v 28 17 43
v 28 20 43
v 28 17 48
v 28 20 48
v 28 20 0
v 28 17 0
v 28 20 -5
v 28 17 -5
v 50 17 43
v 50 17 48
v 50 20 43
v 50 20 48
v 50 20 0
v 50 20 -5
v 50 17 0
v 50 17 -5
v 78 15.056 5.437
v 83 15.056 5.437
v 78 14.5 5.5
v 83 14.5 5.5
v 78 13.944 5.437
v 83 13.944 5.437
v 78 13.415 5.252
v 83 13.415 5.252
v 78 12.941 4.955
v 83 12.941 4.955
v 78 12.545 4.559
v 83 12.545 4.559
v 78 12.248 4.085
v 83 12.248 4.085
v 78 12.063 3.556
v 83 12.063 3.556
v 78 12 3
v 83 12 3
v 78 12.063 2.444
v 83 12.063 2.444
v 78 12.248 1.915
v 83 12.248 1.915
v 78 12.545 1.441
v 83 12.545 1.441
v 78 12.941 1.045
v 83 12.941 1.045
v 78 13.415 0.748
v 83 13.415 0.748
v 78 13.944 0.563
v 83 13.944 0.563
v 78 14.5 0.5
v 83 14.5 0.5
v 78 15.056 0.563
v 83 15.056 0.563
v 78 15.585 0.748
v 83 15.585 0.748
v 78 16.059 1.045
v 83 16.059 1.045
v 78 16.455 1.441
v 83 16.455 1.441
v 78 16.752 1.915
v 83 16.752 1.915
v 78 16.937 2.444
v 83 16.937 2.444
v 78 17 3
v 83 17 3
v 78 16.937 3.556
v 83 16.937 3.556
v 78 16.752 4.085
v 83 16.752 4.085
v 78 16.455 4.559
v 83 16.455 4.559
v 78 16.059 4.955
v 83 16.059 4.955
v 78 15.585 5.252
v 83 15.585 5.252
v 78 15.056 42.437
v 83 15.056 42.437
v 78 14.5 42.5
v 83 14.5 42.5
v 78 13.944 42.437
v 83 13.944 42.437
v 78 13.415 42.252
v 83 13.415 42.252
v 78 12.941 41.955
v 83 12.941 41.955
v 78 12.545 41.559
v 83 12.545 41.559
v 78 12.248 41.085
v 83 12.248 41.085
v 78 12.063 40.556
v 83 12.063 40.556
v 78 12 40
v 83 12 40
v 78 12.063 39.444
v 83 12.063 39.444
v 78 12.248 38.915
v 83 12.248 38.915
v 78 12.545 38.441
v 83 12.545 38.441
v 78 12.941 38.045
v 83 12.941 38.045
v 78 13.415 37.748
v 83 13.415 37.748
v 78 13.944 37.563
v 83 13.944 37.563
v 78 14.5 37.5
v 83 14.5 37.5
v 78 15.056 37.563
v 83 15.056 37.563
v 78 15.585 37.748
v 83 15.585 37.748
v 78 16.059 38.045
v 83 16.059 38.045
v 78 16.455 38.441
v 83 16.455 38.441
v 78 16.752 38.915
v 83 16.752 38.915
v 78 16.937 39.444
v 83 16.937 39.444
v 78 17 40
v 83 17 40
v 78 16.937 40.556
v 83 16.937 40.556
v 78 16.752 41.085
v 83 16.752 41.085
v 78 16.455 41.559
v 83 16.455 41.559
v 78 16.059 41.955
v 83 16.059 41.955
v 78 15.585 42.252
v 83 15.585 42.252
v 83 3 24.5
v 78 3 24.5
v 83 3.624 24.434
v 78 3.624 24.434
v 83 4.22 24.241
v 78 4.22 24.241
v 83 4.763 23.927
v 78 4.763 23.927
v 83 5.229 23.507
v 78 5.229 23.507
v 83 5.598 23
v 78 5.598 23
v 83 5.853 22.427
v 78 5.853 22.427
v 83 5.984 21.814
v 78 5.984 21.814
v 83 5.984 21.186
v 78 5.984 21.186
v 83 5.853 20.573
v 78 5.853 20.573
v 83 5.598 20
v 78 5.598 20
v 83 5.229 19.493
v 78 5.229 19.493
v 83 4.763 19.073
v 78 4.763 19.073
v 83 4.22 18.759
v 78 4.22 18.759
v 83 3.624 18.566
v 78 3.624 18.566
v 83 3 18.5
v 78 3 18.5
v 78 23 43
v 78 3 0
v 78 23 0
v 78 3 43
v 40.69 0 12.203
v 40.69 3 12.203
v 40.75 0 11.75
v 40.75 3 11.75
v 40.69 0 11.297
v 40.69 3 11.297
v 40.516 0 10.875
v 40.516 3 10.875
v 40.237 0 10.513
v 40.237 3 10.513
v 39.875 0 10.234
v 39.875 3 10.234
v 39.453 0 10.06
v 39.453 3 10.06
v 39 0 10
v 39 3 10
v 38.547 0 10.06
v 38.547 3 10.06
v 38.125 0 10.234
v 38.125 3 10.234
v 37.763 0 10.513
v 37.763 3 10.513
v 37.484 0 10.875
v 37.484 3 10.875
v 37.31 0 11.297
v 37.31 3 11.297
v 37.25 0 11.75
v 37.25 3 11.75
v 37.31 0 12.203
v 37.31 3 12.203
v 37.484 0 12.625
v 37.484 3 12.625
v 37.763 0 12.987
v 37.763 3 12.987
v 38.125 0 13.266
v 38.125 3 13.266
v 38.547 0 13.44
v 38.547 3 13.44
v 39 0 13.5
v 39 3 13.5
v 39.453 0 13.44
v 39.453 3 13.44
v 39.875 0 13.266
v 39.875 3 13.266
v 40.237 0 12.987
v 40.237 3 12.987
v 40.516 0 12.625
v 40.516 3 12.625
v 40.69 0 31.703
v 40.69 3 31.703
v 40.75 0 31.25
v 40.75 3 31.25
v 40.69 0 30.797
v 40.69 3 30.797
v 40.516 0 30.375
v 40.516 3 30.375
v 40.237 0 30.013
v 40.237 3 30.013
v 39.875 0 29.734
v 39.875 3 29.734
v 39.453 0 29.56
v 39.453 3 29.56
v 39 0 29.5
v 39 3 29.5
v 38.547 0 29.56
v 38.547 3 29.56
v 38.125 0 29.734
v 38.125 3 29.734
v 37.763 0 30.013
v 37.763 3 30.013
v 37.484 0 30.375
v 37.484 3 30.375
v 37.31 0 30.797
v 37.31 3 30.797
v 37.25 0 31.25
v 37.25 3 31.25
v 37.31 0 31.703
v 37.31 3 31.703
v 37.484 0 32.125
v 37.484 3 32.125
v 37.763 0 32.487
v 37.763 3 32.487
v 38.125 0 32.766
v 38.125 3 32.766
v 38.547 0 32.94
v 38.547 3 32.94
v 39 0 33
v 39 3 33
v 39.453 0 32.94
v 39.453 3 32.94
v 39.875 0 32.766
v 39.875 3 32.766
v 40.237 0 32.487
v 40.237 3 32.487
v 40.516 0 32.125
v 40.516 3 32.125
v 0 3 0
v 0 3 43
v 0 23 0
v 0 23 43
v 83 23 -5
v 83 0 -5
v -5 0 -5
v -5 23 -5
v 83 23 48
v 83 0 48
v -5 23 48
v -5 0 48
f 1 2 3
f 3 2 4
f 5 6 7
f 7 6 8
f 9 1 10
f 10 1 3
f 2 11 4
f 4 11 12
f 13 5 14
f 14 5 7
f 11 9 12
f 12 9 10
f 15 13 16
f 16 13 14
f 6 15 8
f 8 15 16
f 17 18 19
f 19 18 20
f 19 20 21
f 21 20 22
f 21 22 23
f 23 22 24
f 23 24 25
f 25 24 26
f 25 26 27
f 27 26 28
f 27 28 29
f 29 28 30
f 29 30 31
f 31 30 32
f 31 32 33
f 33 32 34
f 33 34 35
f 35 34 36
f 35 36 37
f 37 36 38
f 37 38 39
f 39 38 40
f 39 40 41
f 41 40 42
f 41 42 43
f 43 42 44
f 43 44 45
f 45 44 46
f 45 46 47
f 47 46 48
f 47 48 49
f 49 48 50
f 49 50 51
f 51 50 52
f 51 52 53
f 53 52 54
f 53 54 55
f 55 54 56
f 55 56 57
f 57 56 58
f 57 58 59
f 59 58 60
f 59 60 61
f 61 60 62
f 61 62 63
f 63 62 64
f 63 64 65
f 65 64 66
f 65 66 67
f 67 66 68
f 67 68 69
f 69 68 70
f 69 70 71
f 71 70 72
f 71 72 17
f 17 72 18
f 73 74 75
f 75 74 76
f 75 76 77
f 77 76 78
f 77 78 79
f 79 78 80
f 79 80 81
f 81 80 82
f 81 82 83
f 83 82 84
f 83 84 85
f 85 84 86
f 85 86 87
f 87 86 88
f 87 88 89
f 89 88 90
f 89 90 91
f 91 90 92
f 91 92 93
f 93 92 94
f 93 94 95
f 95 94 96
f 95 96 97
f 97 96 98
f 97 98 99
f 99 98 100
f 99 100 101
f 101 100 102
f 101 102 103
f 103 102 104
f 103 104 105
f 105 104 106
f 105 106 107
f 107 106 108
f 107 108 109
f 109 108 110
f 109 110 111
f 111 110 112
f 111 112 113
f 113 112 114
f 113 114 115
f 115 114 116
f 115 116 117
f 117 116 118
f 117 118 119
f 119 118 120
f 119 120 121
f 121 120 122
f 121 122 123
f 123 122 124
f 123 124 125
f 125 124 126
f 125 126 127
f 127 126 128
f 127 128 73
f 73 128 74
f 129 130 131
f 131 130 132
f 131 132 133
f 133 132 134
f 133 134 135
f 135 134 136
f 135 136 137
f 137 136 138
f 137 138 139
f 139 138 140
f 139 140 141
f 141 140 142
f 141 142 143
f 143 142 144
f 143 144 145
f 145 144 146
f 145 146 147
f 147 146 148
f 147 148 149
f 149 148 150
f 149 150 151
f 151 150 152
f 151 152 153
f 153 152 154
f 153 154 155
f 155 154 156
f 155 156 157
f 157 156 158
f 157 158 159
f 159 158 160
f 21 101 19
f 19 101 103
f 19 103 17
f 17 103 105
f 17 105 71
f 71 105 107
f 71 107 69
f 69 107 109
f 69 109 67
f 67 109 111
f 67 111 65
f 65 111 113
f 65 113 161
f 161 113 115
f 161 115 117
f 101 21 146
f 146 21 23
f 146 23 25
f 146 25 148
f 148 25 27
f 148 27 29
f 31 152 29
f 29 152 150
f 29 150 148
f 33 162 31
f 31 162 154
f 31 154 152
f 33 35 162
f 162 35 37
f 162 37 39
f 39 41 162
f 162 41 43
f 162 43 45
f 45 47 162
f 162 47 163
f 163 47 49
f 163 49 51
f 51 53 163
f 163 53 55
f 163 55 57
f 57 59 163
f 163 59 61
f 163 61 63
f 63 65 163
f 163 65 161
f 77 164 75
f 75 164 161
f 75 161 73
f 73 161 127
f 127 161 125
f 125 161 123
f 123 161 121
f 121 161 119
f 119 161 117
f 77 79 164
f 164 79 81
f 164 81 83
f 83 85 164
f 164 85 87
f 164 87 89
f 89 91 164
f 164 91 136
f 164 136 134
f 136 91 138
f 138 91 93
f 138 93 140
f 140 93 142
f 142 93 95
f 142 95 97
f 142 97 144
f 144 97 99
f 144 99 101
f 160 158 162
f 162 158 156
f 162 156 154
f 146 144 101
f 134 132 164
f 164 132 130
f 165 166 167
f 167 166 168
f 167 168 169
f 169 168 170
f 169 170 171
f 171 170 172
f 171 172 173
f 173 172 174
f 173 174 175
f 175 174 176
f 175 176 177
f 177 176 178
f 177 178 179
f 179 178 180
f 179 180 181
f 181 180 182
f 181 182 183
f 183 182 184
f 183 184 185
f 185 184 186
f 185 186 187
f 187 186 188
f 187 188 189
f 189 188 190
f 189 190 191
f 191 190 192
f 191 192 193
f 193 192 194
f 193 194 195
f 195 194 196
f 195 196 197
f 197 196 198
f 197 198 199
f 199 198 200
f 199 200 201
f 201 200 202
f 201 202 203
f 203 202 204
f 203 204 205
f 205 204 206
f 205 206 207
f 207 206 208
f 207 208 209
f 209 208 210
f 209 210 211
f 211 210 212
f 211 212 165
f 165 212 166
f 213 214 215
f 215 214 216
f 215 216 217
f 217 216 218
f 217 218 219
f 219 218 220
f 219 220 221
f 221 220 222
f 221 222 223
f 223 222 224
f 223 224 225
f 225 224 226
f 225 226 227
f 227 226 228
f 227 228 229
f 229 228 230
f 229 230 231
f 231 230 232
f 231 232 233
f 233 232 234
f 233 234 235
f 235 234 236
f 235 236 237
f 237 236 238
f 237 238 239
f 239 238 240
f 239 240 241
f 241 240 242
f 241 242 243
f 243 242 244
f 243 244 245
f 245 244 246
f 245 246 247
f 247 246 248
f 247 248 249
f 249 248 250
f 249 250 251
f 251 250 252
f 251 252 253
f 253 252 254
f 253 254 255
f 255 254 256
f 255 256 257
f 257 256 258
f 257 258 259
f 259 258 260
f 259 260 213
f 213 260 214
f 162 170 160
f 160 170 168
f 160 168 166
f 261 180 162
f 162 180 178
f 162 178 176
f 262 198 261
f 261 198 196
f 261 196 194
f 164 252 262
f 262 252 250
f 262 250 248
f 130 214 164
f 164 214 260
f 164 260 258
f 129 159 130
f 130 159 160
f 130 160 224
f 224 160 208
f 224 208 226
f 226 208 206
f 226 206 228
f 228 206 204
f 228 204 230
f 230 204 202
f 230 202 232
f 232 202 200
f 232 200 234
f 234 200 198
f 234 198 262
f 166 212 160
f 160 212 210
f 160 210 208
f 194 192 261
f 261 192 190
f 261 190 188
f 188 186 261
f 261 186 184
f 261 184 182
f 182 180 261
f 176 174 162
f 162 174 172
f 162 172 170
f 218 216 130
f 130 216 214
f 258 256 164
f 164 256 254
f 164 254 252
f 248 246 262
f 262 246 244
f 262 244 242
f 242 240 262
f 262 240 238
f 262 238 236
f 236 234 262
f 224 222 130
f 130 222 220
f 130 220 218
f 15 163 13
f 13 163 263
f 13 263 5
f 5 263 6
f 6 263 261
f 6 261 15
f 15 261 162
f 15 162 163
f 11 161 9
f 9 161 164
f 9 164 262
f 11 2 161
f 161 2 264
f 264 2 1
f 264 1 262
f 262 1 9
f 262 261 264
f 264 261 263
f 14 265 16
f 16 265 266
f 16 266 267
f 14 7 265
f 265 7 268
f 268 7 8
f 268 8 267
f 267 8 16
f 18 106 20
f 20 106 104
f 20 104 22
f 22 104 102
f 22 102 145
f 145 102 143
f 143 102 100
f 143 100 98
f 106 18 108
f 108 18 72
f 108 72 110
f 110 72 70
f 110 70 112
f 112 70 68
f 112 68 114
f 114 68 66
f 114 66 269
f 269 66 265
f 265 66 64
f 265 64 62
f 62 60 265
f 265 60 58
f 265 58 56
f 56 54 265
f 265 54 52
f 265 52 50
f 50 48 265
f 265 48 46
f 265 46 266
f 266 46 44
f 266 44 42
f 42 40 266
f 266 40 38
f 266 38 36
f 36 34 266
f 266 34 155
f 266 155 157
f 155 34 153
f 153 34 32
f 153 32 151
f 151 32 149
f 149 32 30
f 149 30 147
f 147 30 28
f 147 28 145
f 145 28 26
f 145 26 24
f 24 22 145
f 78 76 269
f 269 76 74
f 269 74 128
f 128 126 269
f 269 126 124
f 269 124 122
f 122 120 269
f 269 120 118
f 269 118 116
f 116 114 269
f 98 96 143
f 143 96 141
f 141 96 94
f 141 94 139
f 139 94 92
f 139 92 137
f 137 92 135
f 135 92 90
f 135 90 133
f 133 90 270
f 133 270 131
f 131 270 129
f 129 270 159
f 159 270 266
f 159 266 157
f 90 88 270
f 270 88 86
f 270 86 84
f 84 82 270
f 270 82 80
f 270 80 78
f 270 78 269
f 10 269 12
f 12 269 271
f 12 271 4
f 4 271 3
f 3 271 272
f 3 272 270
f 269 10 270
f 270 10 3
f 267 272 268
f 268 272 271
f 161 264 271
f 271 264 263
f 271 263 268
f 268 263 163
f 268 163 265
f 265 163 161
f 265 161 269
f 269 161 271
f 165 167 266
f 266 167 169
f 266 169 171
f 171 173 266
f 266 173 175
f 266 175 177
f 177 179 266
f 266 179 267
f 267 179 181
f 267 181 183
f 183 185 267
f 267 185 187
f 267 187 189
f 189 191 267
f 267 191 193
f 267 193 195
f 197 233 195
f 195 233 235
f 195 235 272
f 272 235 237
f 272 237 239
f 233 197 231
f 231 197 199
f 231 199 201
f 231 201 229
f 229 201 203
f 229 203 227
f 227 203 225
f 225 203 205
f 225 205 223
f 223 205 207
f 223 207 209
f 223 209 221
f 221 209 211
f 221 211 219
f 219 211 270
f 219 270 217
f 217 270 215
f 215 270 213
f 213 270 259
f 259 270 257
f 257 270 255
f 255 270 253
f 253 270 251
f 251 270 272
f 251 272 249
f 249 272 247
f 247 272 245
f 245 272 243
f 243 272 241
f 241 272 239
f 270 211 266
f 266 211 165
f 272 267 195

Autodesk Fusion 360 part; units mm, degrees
sketch "Sketch1" plane through (0, 0, 0) normal (0, 1, 0) x (1, 0, 0)
  line L0 (0, 0) -> (78, 0)
  line L1 (0, 0) -> (0, -43)
  line L2 (0, -43) -> (78, -43)
  line L3 (78, 0) -> (78, -43)
  line L4 (0, 5) -> (83, 5)
  line L5 (83, 5) -> (83, -48)
  line L6 (83, -48) -> (-5, -48)
  line L7 (-5, -48) -> (-5, 5)
  line L8 (-5, 5) -> (0, 5)
  dimension "d1" = 78
  dimension "d2" = 43
  dimension "d3" = 78
  dimension "d4" = 5
  dimension "d5" = 83
  dimension "d6" = 53
  dimension "d7" = 88
extrude "Extrude1" add sketch "Sketch1" along normal blind 23
sketch "Sketch2" plane through (0, 0, 0) normal (0, 1, 0) x (1, 0, 0)
sketch "Sketch3" plane through (0, 0, 0) normal (0, 1, 0) x (1, 0, 0)
  line L0 (0, 0) -> (78, 0)
  line L1 (78, 0) -> (78, -43)
  line L2 (78, -43) -> (0, -43)
  line L3 (0, -43) -> (0, 0)
extrude "Extrude2" add sketch "Sketch3" along normal blind 3
sketch "Sketch4" plane through (0, 3, 0) normal (0, 1, 0) x (-1, 0, 0)
  line L0 (0, 43) -> (-78, 43)
  line L1 (-78, 43) -> (-78, 0)
  line L2 (-78, 0) -> (0, 0)
sketch "Sketch5" plane through (0, 0, 0) normal (0, -1, 0) x (1, 0, 0)
  line L0 (-5, 48) -> (-5, -5)
  line L1 (-5, -5) -> (83, -5)
  line L2 (83, -5) -> (83, 48)
  line L3 (83, 48) -> (-5, 48)
sketch "Sketch6" plane through (0, 3, 0) normal (0, 1, 0) x (-1, 0, 0)
  line L0 (-39, 21.5) -> (-39, 11.75)
  line L1 (-39, 21.5) -> (-39, 31.25)
  circle A0 centre (-39, 11.75) radius 1.75
  circle A1 centre (-39, 31.25) radius 1.75
  dimension "d12" = 9.75
  dimension "d13" = 9.75
  dimension "d14" = 3.5
  dimension "d15" = 3.5
extrude "Extrude3" cut sketch "Sketch6" against normal blind 20
sketch "Sketch7" plane through (0, 3, 0) normal (0, 1, 0) x (-1, 0, 0)
  circle A0 centre (-39, 11.75) radius 1.75
  circle A1 centre (-39, 31.25) radius 1.75
  line L0 (0, 43) -> (-78, 43)
  line L1 (-78, 0) -> (0, 0)
  line L2 (0, 0) -> (0, 43)
sketch "Sketch8" plane through (0, 3, 0) normal (0, 1, 0) x (-1, 0, 0)
sketch "Sketch9" plane through (83, 0, 0) normal (1, 0, 0) x (0, 0, -1)
  line L0 (-48, 0) -> (5, 0)
  line L1 (5, 0) -> (5, 23)
  line L2 (5, 23) -> (-48, 23)
  line L3 (-48, 23) -> (-48, 0)
sketch "Sketch10" plane through (83, 0, 0) normal (1, 0, 0) x (0, 0, -1)
  line L0 (-48, 0) -> (-48, 3)
  line L1 (5, 3) -> (-21.5, 3)
  line L2 (-21.5, 3) -> (-24.5, 3)
  arc A0 (-18.5, 3) -> (-24.5, 3) centre (-21.5, 3) ccw
  dimension "d18" = 3
  dimension "d19" = 6
extrude "Extrude4" cut sketch "Sketch10" against normal blind 20
sketch "Sketch11" plane through (83, 0, 0) normal (1, 0, 0) x (0, 0, -1)
  line L0 (-21.5, 3) -> (-21.5, 6)
  line L1 (-21.5, 6) -> (-21.5, 23)
  line L2 (-21.5, 23) -> (-21.5, 14.5)
  circle A0 centre (-40, 14.5) radius 2.5
  line L3 (-21.5, 14.5) -> (-3, 14.5)
  circle A1 centre (-3, 14.5) radius 2.5
  dimension "d22" = 5
  dimension "d24" = 18.5
  dimension "d25" = 5
extrude "Extrude5" cut sketch "Sketch11" against normal blind 50
sketch "Sketch12" plane through (0, 0, -5) normal (0, 0, -1) x (-1, 0, 0)
  line L0 (-83, 0) -> (5, 0)
  line L1 (5, 0) -> (5, 23)
  line L2 (5, 23) -> (-83, 23)
  line L3 (-83, 23) -> (-83, 0)
  line L4 (-39, 20) -> (-50, 20)
  line L5 (-50, 20) -> (-50, 17)
  line L6 (-50, 17) -> (-28, 17)
  line L7 (-28, 17) -> (-28, 20)
  line L8 (-28, 20) -> (-39, 20)
  dimension "d29" = 3
  dimension "d30" = 22
extrude "Extrude6" cut sketch "Sketch12" against normal blind 100 contours L4 L5 L6 L7 L8
